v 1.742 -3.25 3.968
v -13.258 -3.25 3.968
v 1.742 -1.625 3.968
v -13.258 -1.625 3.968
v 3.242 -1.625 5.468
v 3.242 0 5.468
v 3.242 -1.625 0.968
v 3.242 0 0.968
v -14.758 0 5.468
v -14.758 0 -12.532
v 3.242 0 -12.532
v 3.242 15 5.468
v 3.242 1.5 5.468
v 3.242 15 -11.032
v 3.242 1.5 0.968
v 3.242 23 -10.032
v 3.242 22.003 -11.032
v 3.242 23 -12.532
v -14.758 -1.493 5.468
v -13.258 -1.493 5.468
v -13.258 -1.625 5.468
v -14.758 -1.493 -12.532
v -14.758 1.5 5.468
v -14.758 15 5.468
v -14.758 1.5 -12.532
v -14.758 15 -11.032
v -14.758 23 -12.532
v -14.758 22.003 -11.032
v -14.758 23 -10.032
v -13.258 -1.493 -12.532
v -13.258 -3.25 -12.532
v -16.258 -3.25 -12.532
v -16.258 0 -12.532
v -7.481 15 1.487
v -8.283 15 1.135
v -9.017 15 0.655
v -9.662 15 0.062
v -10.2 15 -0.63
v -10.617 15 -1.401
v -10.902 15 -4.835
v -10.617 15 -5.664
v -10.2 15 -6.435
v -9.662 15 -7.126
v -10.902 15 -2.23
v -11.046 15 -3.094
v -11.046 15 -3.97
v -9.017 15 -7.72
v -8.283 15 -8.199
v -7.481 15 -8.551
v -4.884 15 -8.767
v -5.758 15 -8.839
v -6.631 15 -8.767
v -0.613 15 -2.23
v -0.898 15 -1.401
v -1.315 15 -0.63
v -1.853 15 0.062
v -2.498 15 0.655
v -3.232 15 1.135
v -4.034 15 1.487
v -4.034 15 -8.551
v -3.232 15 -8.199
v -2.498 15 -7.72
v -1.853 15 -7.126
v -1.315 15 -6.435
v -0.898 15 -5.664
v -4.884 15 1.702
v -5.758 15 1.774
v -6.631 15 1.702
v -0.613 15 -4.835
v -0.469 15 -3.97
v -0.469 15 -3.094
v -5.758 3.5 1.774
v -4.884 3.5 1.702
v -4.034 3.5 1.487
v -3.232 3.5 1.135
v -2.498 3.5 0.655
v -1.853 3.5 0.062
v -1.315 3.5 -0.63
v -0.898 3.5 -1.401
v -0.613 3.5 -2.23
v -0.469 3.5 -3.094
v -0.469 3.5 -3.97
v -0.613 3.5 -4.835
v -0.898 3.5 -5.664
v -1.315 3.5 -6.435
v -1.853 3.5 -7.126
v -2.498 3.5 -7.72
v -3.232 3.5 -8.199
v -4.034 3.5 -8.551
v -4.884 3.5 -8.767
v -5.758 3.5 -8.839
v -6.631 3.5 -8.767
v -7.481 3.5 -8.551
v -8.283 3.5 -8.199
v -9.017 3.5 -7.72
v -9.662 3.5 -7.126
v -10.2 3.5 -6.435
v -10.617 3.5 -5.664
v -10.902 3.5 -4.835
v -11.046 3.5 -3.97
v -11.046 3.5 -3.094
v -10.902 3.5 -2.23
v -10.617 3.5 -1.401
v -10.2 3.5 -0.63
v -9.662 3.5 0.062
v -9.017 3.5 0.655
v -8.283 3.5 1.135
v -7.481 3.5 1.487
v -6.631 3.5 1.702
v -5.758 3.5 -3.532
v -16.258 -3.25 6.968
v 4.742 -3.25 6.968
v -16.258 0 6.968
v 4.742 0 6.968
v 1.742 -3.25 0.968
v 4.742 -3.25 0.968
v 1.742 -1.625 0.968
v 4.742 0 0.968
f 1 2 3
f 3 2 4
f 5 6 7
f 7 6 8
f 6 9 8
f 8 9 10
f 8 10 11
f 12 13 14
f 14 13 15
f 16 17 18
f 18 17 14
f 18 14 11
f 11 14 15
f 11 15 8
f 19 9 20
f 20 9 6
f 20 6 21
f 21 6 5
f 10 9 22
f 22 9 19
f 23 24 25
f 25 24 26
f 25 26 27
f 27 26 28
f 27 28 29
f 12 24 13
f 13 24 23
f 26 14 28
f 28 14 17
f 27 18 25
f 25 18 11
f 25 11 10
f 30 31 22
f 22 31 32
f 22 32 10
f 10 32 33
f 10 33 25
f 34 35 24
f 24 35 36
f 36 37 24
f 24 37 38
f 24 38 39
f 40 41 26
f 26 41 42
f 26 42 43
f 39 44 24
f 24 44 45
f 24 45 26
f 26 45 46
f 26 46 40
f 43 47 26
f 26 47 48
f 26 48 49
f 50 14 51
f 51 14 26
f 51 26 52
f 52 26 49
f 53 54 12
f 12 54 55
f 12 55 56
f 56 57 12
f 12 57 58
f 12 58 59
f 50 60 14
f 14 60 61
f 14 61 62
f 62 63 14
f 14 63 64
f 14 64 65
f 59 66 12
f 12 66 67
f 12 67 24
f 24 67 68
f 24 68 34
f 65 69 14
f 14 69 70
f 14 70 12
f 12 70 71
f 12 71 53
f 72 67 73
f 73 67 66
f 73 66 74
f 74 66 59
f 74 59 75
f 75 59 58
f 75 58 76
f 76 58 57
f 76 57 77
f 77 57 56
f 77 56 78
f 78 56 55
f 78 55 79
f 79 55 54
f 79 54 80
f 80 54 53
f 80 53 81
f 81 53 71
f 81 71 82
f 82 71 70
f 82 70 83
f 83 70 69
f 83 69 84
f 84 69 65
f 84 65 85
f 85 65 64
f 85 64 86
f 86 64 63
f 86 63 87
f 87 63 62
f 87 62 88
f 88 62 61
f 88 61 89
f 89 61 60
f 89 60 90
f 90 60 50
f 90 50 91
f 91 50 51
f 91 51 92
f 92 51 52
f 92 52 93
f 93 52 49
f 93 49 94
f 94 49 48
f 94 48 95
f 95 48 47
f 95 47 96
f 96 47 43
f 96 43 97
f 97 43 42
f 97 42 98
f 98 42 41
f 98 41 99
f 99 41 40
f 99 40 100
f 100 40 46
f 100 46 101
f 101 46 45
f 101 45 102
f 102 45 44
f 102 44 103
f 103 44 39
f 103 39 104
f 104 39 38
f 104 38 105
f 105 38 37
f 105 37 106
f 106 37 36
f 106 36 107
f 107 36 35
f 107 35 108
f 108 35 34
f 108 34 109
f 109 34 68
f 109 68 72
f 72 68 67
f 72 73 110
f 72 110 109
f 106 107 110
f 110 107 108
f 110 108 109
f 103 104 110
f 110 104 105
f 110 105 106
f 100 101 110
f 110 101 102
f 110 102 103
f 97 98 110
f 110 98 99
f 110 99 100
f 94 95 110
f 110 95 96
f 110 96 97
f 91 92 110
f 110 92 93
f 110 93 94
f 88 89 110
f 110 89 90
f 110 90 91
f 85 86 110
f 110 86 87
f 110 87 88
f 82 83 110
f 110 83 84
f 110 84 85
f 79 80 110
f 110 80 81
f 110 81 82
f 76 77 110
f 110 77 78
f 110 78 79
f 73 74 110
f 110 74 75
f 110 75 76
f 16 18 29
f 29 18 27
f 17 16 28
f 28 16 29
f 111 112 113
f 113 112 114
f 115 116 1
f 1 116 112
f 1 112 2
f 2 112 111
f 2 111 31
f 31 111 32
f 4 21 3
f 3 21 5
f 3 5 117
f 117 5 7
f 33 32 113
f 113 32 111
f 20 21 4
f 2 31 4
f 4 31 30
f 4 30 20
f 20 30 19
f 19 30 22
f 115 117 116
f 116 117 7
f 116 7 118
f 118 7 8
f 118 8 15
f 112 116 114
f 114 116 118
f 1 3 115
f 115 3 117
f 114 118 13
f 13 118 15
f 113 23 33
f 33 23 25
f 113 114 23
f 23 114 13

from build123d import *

# Parameters (mm, degrees)
SKETCH1_W            = 18
SKETCH1_H            = 18
BOSS_EXTRUDE1_DEPTH  = 15
SKETCH3_R            = 5.306691295
CUT_EXTRUDE1_DEPTH   = 11.5
SKETCH4_W            = 18
SKETCH4_H            = 1.5
BOSS_EXTRUDE2_DEPTH  = 8
SKETCH6_W            = 18
SKETCH6_H            = 0.997263539
BOSS_EXTRUDE3_DEPTH  = 1
CUT_EXTRUDE2_DEPTH   = 18
SKETCH9_W            = 18
SKETCH9_H            = 1.5
BOSS_EXTRUDE4_DEPTH  = 1.5
SKETCH10_W           = 18
SKETCH10_H           = 1.5
BOSS_EXTRUDE6_DEPTH  = 3.25
SKETCH11_W           = 18
SKETCH11_H           = 1.625
BOSS_EXTRUDE7_DEPTH  = 1.5
SKETCH13_W           = 19.5
SKETCH13_H           = 1.5
BOSS_EXTRUDE9_DEPTH  = 1.5
SKETCH14_W           = 1.5
SKETCH14_H           = 19.5
BOSS_EXTRUDE10_DEPTH = 3.25
SKETCH15_W           = 19.5
SKETCH15_H           = 1.756529455
BOSS_EXTRUDE11_DEPTH = 1.5
SKETCH16_W           = 6
SKETCH16_H           = 1.5
BOSS_EXTRUDE12_DEPTH = 1.5
SKETCH17_W           = 1.5
SKETCH17_H           = 6
BOSS_EXTRUDE13_DEPTH = 3.25
SKETCH18_W           = 3
SKETCH18_H           = 1.625
BOSS_EXTRUDE14_DEPTH = 1.5
CUT_EXTRUDE3_DEPTH   = 18
CUT_EXTRUDE11_DEPTH  = 21
CUT_EXTRUDE12_DEPTH  = 2
CUT_EXTRUDE13_DEPTH  = 2


with BuildPart() as part:
    # Sketch1 → Boss-Extrude1 (new body)
    with BuildSketch(Plane(origin=(0, 0, 0), x_dir=(1, 0, 0), z_dir=(0, 1, 0))):
        with Locations((-5.757576823, 3.532227937)):
            Rectangle(SKETCH1_W, SKETCH1_H)
    extrude(amount=BOSS_EXTRUDE1_DEPTH)

    # Sketch3 → Cut-Extrude1 (cut)
    with BuildSketch(Plane(origin=(0, 15, 0), x_dir=(1, 0, 0), z_dir=(0, 1, 0))):
        with Locations((-5.757576823, 3.532227937)):
            Circle(SKETCH3_R)
    extrude(amount=-CUT_EXTRUDE1_DEPTH, mode=Mode.SUBTRACT)

    # Sketch4 → Boss-Extrude2 (add)
    with BuildSketch(Plane(origin=(0, 15, 0), x_dir=(1, 0, 0), z_dir=(0, 1, 0))):
        with Locations((-5.757576823, 11.782227937)):
            Rectangle(SKETCH4_W, SKETCH4_H)
    extrude(amount=BOSS_EXTRUDE2_DEPTH)

    # Sketch6 → Boss-Extrude3 (add)
    with BuildSketch(Plane.XY.offset(-11.032227937)):
        with Locations((-5.757576823, 22.50136823)):
            Rectangle(SKETCH6_W, SKETCH6_H)
    extrude(amount=BOSS_EXTRUDE3_DEPTH)

    # Sketch7 → Cut-Extrude2 (cut)
    with BuildSketch(Plane.ZY.offset(14.757576823)):
        Polygon((-11.032227937, 22.002736461), (-10.032227937, 23), (-10.032227937, 22.002736461), align=None)
    extrude(amount=-CUT_EXTRUDE2_DEPTH, mode=Mode.SUBTRACT)

    # Sketch9 → Boss-Extrude4 (add)
    with BuildSketch(Plane.XY.offset(5.467772063)):
        with Locations((-5.757576823, 0.75)):
            Rectangle(SKETCH9_W, SKETCH9_H)
    extrude(amount=BOSS_EXTRUDE4_DEPTH)

    # Sketch10 → Boss-Extrude6 (add)
    with BuildSketch(Plane.XZ):
        with Locations((-5.757576823, 6.217772063)):
            Rectangle(SKETCH10_W, SKETCH10_H)
    extrude(amount=BOSS_EXTRUDE6_DEPTH)

    # Sketch11 → Boss-Extrude7 (add)
    with BuildSketch(Plane(origin=(0, 0, 5.467772063), x_dir=(-1, 0, 0), z_dir=(0, 0, -1))):
        with Locations((5.757576823, -2.4375)):
            Rectangle(SKETCH11_W, SKETCH11_H)
    extrude(amount=BOSS_EXTRUDE7_DEPTH)

    # Sketch13 → Boss-Extrude9 (add)
    with BuildSketch(Plane.ZY.offset(14.757576823)):
        with Locations((-2.782227937, 0.75)):
            Rectangle(SKETCH13_W, SKETCH13_H)
    extrude(amount=BOSS_EXTRUDE9_DEPTH)

    # Sketch14 → Boss-Extrude10 (add)
    with BuildSketch(Plane.XZ):
        with Locations((-15.507576823, -2.782227937)):
            Rectangle(SKETCH14_W, SKETCH14_H)
    extrude(amount=BOSS_EXTRUDE10_DEPTH)

    # Sketch15 → Boss-Extrude11 (add)
    with BuildSketch(Plane(origin=(-14.757576823, 0, 0), x_dir=(0, 0, -1), z_dir=(1, 0, 0))):
        with Locations((2.782227937, -2.371735273)):
            Rectangle(SKETCH15_W, SKETCH15_H)
    extrude(amount=BOSS_EXTRUDE11_DEPTH)

    # Sketch16 → Boss-Extrude12 (add)
    with BuildSketch(Plane(origin=(3.242423177, 0, 0), x_dir=(0, 0, -1), z_dir=(1, 0, 0))):
        with Locations((-3.967772063, 0.75)):
            Rectangle(SKETCH16_W, SKETCH16_H)
    extrude(amount=BOSS_EXTRUDE12_DEPTH)

    # Sketch17 → Boss-Extrude13 (add)
    with BuildSketch(Plane.XZ):
        with Locations((3.992423177, 3.967772063)):
            Rectangle(SKETCH17_W, SKETCH17_H)
    extrude(amount=BOSS_EXTRUDE13_DEPTH)

    # Sketch18 → Boss-Extrude14 (add)
    with BuildSketch(Plane.ZY.offset(-3.242423177)):
        with Locations((2.467772063, -2.4375)):
            Rectangle(SKETCH18_W, SKETCH18_H)
    extrude(amount=BOSS_EXTRUDE14_DEPTH)

    # Sketch19 → Cut-Extrude3 (cut)
    with BuildSketch(Plane(origin=(0, 0, -12.532227937), x_dir=(-1, 0, 0), z_dir=(0, 0, -1))):
        Polygon((16.257576823, 0), (14.757576823, 1.5), (16.257576823, 1.5), align=None)
        Polygon((-4.742423177, 0), (-3.242423177, 1.5), (-4.742423177, 1.5), align=None)
    extrude(amount=-CUT_EXTRUDE3_DEPTH, mode=Mode.SUBTRACT)

    # Sketch22 → Cut-Extrude11 (cut)
    with BuildSketch(Plane(origin=(4.742423177, 0, 0), x_dir=(0, 0, -1), z_dir=(1, 0, 0))):
        Polygon((-6.967772063, 0), (-6.967772063, 1.5), (-5.467772063, 1.5), align=None)
    extrude(amount=-CUT_EXTRUDE11_DEPTH, mode=Mode.SUBTRACT)

    # Sketch24 → Cut-Extrude12 (cut)
    with BuildSketch(Plane(origin=(0, 0, 5.467772063), x_dir=(-1, 0, 0), z_dir=(0, 0, -1))):
        Polygon((-3.242423177, 1.5), (-4.742423177, 0), (-4.742423177, 1.5), align=None)
    extrude(amount=-CUT_EXTRUDE12_DEPTH, mode=Mode.SUBTRACT)

    # Sketch25 → Cut-Extrude13 (cut)
    with BuildSketch(Plane(origin=(0, 0, 5.467772063), x_dir=(-1, 0, 0), z_dir=(0, 0, -1))):
        Polygon((16.257576823, 0), (14.757576823, 1.5), (16.257576823, 1.5), align=None)
    extrude(amount=-CUT_EXTRUDE13_DEPTH, mode=Mode.SUBTRACT)


solid = part.part
